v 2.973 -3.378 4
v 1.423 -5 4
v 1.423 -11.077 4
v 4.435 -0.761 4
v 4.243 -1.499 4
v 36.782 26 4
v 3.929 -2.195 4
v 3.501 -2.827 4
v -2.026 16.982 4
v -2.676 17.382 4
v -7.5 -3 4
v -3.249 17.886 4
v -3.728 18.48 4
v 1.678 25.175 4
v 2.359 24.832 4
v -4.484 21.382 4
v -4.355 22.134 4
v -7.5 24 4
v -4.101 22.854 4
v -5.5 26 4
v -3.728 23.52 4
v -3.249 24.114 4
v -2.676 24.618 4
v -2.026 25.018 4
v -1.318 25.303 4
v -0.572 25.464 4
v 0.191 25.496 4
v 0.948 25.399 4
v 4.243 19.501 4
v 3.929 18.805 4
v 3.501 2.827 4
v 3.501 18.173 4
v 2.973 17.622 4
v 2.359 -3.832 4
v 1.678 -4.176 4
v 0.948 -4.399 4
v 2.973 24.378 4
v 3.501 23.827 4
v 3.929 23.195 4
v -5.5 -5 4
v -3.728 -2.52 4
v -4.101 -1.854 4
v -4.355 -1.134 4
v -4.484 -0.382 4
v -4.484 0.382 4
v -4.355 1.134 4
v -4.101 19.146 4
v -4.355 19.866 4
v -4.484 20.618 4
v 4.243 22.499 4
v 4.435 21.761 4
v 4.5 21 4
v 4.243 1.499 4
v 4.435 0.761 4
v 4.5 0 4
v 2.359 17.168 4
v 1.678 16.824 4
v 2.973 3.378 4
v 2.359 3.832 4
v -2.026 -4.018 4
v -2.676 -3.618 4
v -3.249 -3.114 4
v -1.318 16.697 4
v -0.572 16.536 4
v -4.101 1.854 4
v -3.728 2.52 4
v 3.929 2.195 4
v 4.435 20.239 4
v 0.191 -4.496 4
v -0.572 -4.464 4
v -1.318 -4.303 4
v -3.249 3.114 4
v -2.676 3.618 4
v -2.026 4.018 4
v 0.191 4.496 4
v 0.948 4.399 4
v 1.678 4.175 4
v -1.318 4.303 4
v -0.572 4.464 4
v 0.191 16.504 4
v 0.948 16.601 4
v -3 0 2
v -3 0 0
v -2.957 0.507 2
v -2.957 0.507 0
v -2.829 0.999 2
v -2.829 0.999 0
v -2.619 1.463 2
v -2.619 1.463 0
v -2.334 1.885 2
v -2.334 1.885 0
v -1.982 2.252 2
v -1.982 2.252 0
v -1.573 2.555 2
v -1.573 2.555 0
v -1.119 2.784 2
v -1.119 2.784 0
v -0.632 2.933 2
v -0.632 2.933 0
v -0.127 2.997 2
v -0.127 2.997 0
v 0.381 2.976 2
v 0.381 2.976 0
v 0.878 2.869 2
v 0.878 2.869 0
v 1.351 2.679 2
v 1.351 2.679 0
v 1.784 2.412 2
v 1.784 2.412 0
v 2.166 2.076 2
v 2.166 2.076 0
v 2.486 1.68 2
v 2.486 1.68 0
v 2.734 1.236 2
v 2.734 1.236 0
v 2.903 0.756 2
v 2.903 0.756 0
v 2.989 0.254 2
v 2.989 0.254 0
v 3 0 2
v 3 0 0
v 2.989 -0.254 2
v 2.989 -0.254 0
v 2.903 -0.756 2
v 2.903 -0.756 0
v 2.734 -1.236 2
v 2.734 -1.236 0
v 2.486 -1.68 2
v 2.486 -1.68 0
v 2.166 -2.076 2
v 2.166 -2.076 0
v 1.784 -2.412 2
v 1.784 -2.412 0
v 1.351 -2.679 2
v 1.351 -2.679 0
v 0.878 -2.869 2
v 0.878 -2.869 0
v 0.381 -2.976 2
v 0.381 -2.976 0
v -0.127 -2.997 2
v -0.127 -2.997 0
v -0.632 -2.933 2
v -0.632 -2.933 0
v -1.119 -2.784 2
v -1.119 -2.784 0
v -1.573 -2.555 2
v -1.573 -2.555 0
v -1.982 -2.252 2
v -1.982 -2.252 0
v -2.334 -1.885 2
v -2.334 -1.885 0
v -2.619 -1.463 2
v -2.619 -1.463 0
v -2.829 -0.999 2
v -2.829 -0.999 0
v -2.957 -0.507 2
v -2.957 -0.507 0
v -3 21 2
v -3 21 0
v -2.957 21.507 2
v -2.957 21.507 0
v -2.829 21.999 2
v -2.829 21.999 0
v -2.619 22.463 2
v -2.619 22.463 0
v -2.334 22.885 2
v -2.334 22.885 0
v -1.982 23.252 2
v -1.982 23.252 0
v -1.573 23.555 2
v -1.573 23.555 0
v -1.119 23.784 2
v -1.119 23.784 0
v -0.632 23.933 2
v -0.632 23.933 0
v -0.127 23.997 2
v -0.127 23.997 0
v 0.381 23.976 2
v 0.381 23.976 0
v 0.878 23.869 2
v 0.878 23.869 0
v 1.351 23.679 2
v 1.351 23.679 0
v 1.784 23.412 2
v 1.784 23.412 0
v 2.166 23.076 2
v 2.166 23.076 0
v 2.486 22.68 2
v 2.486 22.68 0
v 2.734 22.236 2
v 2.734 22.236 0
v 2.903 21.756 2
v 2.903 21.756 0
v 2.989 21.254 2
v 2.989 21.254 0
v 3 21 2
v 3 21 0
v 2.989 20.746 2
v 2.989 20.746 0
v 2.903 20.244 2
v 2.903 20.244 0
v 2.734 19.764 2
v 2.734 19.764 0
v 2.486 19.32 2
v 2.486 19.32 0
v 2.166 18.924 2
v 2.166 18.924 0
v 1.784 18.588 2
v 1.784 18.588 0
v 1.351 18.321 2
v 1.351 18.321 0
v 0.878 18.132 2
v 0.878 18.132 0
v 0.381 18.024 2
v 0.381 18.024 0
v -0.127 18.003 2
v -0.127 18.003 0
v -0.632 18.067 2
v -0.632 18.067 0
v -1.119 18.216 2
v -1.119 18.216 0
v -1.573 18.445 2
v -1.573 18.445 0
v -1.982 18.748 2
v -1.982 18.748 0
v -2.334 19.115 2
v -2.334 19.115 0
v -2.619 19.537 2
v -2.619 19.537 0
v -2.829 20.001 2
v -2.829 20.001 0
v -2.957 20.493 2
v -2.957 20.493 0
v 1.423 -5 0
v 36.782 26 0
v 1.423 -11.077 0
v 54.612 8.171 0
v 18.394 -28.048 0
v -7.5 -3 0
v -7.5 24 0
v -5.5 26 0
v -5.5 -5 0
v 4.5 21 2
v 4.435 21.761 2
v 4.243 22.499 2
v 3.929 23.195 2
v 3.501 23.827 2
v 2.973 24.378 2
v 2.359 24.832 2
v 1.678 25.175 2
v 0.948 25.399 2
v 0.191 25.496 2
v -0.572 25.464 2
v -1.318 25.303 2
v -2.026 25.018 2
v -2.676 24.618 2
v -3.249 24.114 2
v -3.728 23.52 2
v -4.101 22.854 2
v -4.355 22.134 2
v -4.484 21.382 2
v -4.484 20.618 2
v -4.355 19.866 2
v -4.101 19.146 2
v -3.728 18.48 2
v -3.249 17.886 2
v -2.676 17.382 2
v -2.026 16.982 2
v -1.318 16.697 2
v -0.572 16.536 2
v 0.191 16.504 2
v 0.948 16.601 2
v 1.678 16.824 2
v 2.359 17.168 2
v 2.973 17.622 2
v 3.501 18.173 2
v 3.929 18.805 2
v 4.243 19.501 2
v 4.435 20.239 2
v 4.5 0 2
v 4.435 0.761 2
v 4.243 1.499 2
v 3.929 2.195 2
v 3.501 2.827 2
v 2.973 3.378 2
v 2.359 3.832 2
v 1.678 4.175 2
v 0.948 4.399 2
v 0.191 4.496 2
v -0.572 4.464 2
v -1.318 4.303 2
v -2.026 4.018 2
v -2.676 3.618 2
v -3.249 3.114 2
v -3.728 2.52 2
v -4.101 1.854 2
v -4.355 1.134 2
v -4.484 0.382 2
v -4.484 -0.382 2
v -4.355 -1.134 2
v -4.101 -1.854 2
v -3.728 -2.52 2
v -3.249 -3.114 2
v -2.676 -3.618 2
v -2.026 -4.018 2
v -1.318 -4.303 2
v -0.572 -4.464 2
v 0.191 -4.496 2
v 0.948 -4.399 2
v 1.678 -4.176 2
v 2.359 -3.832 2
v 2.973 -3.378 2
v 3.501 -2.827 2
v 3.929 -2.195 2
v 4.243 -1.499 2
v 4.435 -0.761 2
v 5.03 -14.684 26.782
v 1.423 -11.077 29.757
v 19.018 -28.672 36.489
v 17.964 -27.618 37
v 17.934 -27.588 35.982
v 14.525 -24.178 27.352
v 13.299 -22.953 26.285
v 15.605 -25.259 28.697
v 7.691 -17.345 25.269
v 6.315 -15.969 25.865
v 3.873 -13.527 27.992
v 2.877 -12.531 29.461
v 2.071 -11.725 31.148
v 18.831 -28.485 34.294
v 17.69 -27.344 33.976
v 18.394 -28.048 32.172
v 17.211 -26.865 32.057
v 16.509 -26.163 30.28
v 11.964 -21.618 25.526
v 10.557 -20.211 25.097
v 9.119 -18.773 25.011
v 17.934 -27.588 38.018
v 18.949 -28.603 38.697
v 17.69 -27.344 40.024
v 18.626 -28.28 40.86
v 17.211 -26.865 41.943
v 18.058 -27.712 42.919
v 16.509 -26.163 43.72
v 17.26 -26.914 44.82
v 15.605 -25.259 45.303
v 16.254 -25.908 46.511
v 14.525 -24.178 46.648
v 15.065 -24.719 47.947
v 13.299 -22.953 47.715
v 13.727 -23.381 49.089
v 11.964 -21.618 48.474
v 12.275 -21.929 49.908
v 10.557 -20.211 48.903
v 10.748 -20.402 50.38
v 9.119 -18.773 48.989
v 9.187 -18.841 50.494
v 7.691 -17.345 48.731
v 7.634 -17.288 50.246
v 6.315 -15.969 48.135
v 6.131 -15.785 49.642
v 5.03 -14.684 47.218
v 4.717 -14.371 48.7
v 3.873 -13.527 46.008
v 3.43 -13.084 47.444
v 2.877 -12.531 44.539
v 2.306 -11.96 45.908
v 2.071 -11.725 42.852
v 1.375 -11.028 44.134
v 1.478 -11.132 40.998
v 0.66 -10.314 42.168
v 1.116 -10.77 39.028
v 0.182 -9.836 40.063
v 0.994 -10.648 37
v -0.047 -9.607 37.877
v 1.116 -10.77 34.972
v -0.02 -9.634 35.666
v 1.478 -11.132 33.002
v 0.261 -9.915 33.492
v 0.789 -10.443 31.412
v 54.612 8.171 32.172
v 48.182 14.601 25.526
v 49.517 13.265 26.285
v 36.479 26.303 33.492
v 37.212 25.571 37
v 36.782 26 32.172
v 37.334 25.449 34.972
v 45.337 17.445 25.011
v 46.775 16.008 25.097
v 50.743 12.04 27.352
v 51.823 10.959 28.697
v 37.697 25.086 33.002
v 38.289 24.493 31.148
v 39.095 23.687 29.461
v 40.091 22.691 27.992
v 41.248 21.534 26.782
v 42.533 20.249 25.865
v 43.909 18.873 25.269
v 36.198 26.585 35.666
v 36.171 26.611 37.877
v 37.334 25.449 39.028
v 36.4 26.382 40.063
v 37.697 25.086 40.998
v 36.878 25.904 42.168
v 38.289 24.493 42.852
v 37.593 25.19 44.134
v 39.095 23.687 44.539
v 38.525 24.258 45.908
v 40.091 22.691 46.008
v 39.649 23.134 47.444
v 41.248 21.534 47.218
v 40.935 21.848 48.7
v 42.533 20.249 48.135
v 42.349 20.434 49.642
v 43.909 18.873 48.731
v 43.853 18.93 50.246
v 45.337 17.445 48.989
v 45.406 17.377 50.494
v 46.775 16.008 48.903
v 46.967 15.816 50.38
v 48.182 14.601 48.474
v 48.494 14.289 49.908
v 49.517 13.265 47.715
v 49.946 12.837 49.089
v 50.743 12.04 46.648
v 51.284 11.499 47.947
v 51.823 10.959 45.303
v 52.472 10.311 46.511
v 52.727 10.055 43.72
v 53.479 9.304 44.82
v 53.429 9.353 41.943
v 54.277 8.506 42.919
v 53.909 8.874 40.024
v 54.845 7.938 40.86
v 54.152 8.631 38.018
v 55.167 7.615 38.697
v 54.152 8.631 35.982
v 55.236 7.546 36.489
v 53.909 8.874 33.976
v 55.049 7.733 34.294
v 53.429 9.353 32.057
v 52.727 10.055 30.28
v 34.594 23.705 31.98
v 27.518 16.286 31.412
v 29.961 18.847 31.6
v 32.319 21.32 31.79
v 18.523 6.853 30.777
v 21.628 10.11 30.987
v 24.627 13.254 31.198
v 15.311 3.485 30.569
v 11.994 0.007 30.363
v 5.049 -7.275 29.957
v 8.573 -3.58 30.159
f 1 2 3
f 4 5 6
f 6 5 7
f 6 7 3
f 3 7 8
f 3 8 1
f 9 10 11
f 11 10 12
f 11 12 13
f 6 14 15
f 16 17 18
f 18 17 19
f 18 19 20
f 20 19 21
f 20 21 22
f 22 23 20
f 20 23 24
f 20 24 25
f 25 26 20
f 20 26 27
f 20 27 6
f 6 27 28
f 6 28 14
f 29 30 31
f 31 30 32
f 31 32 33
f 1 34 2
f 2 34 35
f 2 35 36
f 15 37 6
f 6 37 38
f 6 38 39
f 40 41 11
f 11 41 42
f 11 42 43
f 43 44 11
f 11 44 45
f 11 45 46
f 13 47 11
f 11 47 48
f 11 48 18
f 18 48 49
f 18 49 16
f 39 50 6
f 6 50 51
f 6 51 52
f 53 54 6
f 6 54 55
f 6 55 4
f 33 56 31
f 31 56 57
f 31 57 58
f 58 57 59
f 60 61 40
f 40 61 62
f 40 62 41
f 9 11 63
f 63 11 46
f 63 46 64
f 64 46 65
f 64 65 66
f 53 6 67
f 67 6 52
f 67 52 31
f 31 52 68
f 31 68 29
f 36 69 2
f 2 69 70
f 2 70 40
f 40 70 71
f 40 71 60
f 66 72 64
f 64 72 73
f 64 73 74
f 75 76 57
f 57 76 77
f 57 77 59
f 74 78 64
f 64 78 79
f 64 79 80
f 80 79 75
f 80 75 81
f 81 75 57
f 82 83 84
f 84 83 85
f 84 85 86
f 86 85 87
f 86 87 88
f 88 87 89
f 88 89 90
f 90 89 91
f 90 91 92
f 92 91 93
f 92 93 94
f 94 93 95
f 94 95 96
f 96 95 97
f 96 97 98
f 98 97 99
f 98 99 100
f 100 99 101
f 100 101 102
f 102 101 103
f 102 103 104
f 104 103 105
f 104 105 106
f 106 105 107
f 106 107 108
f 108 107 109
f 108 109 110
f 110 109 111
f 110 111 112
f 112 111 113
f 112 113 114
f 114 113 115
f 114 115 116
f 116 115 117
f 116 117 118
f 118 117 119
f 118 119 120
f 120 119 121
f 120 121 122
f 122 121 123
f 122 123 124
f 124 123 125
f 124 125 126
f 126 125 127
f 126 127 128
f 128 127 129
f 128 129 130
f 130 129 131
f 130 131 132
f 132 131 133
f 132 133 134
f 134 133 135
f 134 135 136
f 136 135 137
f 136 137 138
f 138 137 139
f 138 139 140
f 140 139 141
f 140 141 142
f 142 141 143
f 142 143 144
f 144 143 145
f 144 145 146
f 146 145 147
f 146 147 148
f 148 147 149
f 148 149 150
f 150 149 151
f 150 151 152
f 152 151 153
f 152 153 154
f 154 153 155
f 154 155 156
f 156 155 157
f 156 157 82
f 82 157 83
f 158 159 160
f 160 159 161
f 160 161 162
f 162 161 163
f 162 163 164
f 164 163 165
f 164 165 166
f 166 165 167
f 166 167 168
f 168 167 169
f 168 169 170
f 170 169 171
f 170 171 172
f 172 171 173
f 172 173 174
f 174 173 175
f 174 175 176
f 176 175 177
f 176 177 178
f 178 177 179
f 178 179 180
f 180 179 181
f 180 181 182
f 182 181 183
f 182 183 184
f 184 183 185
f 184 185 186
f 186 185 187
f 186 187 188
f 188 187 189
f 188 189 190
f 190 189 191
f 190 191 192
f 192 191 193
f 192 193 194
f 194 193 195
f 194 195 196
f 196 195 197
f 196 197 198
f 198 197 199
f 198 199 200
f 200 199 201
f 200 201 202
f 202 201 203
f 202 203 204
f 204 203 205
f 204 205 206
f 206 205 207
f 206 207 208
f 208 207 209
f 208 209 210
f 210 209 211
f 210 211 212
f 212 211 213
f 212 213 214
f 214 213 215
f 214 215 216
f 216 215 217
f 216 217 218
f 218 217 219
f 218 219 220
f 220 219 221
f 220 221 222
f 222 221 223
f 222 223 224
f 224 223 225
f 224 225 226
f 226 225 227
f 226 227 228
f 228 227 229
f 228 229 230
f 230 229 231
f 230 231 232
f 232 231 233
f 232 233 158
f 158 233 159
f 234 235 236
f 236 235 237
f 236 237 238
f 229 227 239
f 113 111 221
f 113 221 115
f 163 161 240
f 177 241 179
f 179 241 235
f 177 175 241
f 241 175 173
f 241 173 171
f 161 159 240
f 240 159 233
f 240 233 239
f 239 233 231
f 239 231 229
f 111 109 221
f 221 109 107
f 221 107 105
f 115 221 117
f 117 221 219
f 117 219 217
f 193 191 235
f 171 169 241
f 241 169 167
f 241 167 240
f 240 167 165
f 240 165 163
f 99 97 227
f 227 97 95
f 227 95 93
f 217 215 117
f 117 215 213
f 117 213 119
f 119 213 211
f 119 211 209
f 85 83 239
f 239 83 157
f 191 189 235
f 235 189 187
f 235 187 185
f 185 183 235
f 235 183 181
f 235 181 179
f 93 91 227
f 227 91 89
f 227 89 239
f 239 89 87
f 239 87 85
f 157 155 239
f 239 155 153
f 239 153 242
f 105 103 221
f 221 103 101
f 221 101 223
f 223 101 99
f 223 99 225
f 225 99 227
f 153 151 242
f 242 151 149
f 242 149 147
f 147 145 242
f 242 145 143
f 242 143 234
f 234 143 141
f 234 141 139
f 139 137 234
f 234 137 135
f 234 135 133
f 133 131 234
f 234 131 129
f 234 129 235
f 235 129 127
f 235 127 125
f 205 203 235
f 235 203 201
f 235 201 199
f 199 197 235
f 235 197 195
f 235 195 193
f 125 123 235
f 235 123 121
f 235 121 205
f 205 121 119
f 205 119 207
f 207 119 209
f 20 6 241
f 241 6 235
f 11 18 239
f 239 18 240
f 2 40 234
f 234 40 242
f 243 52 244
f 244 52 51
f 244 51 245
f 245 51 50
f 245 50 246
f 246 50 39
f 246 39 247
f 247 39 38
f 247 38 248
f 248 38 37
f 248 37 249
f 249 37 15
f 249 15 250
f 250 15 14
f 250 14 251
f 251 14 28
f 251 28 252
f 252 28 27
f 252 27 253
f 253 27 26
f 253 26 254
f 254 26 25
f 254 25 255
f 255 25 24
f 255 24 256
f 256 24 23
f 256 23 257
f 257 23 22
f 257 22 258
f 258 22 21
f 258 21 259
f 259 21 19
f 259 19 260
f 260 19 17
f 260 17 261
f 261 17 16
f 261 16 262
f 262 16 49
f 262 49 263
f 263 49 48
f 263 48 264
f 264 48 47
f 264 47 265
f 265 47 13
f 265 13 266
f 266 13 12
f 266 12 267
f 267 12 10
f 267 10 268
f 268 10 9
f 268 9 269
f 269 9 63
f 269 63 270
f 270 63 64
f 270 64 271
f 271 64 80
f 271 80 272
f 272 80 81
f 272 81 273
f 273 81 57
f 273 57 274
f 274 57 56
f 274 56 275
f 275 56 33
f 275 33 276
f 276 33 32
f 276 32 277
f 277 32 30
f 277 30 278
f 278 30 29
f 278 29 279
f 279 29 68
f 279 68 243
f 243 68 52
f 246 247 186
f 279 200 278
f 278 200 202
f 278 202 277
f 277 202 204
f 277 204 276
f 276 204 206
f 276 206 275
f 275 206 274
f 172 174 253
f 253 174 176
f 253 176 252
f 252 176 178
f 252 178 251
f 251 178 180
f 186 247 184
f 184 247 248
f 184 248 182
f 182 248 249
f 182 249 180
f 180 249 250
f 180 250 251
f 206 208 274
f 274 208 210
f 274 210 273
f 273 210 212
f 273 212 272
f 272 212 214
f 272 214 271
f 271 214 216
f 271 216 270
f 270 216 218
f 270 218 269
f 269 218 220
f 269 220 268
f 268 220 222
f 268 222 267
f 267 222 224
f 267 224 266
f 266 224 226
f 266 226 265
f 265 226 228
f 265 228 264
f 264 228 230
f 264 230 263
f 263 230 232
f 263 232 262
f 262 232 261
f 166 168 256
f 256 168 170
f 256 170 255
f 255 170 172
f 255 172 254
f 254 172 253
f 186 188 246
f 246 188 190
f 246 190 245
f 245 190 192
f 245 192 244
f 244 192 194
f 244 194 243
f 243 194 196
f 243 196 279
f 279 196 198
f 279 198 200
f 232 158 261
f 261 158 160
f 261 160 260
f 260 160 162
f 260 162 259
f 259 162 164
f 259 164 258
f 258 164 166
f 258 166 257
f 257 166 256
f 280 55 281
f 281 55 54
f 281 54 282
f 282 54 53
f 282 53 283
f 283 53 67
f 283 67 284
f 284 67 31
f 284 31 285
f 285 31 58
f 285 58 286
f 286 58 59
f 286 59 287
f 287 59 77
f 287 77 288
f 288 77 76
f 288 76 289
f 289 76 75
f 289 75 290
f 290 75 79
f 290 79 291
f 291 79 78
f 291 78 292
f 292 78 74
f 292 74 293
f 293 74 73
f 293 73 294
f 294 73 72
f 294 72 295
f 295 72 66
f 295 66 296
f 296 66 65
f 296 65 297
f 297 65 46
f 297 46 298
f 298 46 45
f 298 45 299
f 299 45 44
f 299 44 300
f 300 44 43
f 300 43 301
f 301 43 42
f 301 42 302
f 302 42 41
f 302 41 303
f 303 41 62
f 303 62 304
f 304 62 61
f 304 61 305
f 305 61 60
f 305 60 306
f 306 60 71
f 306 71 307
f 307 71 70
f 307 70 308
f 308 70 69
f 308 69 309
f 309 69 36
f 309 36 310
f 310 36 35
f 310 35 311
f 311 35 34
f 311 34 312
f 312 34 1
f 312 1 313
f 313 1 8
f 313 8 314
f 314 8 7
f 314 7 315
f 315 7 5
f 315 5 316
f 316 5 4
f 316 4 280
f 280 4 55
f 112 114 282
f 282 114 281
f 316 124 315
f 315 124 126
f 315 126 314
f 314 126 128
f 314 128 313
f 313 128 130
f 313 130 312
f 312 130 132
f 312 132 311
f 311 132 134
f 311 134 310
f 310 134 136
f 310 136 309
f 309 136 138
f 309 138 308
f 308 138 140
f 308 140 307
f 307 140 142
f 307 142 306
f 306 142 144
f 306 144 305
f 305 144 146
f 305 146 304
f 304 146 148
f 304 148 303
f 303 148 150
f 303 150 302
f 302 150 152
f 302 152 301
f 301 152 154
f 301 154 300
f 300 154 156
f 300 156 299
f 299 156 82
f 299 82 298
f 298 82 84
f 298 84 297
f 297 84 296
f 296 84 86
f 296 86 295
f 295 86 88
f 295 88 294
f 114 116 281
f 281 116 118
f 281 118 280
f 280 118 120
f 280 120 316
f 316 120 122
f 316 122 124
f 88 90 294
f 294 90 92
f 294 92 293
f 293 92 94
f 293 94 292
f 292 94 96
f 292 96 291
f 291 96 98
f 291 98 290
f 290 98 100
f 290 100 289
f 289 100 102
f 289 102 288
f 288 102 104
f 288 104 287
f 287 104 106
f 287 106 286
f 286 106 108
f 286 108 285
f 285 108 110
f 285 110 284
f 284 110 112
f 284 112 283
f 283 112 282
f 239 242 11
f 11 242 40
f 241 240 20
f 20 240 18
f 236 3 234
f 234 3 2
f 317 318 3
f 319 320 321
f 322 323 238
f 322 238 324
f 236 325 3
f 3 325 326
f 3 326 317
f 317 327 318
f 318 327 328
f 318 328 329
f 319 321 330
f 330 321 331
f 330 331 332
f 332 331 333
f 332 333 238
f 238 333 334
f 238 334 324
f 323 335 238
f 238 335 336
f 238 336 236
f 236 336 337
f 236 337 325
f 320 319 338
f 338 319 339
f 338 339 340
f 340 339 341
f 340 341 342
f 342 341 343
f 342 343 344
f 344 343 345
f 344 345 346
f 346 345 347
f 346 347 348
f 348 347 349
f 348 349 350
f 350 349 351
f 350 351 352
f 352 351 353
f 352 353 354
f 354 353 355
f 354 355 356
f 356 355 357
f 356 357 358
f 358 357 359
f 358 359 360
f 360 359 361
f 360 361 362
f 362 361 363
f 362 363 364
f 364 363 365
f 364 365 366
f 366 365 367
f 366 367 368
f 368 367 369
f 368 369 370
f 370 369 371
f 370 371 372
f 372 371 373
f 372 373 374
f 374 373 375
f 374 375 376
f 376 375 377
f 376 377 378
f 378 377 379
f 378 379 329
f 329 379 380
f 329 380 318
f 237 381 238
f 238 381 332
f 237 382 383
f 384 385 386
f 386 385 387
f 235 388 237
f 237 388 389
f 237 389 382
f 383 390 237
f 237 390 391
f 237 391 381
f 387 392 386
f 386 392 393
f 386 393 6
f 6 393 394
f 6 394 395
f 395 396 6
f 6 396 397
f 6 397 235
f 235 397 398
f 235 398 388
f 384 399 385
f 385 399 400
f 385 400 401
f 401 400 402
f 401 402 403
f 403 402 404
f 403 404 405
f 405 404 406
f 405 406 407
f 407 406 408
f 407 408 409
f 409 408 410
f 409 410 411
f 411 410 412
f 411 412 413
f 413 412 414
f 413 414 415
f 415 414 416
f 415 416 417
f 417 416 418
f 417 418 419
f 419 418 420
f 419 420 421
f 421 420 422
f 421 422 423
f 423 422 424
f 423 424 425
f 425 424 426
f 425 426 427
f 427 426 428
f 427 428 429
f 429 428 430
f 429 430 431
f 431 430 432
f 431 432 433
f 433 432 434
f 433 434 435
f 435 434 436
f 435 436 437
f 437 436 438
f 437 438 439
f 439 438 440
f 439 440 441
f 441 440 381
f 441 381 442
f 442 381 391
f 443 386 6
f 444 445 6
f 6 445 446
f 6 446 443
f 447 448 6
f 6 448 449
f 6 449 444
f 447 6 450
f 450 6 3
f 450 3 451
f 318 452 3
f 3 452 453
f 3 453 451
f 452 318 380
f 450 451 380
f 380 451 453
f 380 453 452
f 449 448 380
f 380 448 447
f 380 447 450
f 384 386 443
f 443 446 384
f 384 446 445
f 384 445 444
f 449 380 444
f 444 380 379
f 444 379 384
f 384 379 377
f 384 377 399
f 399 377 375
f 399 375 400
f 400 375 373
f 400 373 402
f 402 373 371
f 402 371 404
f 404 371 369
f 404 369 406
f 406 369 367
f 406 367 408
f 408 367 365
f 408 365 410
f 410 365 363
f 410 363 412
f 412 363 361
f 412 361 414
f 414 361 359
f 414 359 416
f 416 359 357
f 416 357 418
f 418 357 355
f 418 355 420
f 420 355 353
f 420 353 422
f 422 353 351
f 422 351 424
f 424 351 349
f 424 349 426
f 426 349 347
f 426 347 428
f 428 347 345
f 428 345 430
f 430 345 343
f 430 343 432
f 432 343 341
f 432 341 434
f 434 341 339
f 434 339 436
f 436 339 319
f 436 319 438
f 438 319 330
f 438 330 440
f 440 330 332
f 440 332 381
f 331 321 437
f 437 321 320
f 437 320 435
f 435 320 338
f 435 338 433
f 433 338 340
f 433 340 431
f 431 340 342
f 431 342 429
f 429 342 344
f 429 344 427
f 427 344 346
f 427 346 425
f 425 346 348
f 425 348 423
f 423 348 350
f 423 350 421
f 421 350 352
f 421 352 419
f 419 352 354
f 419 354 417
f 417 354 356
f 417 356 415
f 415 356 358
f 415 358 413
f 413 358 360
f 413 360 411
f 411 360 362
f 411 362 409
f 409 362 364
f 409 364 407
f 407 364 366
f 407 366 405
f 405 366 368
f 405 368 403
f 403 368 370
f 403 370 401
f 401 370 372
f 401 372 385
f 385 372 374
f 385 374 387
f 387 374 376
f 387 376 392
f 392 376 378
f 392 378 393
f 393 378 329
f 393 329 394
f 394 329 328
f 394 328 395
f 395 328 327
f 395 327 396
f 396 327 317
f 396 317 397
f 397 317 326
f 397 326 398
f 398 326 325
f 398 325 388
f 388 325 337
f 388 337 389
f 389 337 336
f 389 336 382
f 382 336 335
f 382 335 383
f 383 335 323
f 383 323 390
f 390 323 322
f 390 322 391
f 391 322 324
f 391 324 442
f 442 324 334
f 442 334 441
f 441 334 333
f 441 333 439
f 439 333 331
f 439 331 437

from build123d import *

# Parameters (mm, degrees)
SKETCH1_W                = 15
SKETCH1_H                = 31
SKETCH1_R                = 3
BOSS_EXTRUDE1_DEPTH      = 4
SKETCH2_R                = 4.5
CUT_EXTRUDE1_DEPTH       = 2
CHAMFER1_SIZE            = 2
BOSS_EXTRUDE3_DEPTH      = 4
SKETCH4_R                = 13.5
SKETCH4_R_2              = 12
BOSS_EXTRUDE4_DEPTH      = 51.220242393
BOSS_EXTRUDE5_REACH      = 79.695
BOSS_EXTRUDE5_END_RADIUS = 13.5


with BuildPart() as part:
    # Sketch1 → Boss-Extrude1 (new body)
    with BuildSketch(Plane.XY):
        with Locations((0, 10.5)):
            Rectangle(SKETCH1_W, SKETCH1_H)
        Circle(SKETCH1_R, mode=Mode.SUBTRACT)
        with Locations((0, 21)):
            Circle(SKETCH1_R, mode=Mode.SUBTRACT)
    extrude(amount=BOSS_EXTRUDE1_DEPTH)

    # Sketch2 → Cut-Extrude1 (cut)
    with BuildSketch(Plane.XY.offset(4)):
        with Locations((0, 21)):
            Circle(SKETCH2_R)
        Circle(SKETCH2_R)
    extrude(amount=-CUT_EXTRUDE1_DEPTH, mode=Mode.SUBTRACT)

    # Chamfer1
    chamfer1_edges = [part.edges().sort_by_distance(p)[0] for p in [
        (-7.5, -5, 2),
        (-7.5, 26, 2),
    ]]
    chamfer(chamfer1_edges, length=CHAMFER1_SIZE)

    # Sketch3 → Boss-Extrude3 (add)
    with BuildSketch(Plane.XY.offset(4)):
        Polygon((1.423063068, -5), (7.5, -5), (7.5, 26), (36.782487596, 26), (54.611806547, 8.17068105), (41.441125497, -5), (18.393625817, -28.04749968), (1.423063068, -11.076936932), align=None)
    extrude(amount=-BOSS_EXTRUDE3_DEPTH)



with BuildPart() as body_2:
    # Sketch4 → Boss-Extrude4 (new body)
    with BuildSketch(Plane(origin=(31.391243798, 31.391243798, 0), x_dir=(0, 0, -1), z_dir=(0.7071067811865465, 0.7071067811865487, 0))):
        with Locations(Location((-37, -20.231602431, 0), (0, 0, 90))):
            Circle(SKETCH4_R)
        with Locations(Location((-37, -20.231602431, 0), (0, 0, 90))):
            Circle(SKETCH4_R_2, mode=Mode.SUBTRACT)
    extrude(amount=-BOSS_EXTRUDE4_DEPTH)


with BuildPart() as part_1:
    add(part.part)

    add(body_2.part)  # Boss-Extrude5 merges body 2
    # Boss-Extrude5: up to this cylinder (the profile starts outside it)
    boss_extrude5_end = Plane(origin=(27.737015773, -0.874790773, 37), z_dir=(0.7071067811865465, 0.7071067811865487, 0)) * Cylinder(BOSS_EXTRUDE5_END_RADIUS, 187.39, mode=Mode.PRIVATE)
    # Sketch5 → Boss-Extrude5 (add, up to the surface)
    with BuildSketch(Plane.XY.offset(4), mode=Mode.PRIVATE) as boss_extrude5_sk1:
        Polygon((1.423063068, -11.076936932), (36.782487596, 26), (54.611806547, 8.17068105), (18.393625817, -28.04749968), align=None)
    boss_extrude5_tool1 = extrude(boss_extrude5_sk1.sketch, amount=BOSS_EXTRUDE5_REACH, mode=Mode.PRIVATE) - boss_extrude5_end
    add(boss_extrude5_tool1.solids().sort_by_distance((27.949939, -1.087714, 4))[0])


solid = part_1.part
